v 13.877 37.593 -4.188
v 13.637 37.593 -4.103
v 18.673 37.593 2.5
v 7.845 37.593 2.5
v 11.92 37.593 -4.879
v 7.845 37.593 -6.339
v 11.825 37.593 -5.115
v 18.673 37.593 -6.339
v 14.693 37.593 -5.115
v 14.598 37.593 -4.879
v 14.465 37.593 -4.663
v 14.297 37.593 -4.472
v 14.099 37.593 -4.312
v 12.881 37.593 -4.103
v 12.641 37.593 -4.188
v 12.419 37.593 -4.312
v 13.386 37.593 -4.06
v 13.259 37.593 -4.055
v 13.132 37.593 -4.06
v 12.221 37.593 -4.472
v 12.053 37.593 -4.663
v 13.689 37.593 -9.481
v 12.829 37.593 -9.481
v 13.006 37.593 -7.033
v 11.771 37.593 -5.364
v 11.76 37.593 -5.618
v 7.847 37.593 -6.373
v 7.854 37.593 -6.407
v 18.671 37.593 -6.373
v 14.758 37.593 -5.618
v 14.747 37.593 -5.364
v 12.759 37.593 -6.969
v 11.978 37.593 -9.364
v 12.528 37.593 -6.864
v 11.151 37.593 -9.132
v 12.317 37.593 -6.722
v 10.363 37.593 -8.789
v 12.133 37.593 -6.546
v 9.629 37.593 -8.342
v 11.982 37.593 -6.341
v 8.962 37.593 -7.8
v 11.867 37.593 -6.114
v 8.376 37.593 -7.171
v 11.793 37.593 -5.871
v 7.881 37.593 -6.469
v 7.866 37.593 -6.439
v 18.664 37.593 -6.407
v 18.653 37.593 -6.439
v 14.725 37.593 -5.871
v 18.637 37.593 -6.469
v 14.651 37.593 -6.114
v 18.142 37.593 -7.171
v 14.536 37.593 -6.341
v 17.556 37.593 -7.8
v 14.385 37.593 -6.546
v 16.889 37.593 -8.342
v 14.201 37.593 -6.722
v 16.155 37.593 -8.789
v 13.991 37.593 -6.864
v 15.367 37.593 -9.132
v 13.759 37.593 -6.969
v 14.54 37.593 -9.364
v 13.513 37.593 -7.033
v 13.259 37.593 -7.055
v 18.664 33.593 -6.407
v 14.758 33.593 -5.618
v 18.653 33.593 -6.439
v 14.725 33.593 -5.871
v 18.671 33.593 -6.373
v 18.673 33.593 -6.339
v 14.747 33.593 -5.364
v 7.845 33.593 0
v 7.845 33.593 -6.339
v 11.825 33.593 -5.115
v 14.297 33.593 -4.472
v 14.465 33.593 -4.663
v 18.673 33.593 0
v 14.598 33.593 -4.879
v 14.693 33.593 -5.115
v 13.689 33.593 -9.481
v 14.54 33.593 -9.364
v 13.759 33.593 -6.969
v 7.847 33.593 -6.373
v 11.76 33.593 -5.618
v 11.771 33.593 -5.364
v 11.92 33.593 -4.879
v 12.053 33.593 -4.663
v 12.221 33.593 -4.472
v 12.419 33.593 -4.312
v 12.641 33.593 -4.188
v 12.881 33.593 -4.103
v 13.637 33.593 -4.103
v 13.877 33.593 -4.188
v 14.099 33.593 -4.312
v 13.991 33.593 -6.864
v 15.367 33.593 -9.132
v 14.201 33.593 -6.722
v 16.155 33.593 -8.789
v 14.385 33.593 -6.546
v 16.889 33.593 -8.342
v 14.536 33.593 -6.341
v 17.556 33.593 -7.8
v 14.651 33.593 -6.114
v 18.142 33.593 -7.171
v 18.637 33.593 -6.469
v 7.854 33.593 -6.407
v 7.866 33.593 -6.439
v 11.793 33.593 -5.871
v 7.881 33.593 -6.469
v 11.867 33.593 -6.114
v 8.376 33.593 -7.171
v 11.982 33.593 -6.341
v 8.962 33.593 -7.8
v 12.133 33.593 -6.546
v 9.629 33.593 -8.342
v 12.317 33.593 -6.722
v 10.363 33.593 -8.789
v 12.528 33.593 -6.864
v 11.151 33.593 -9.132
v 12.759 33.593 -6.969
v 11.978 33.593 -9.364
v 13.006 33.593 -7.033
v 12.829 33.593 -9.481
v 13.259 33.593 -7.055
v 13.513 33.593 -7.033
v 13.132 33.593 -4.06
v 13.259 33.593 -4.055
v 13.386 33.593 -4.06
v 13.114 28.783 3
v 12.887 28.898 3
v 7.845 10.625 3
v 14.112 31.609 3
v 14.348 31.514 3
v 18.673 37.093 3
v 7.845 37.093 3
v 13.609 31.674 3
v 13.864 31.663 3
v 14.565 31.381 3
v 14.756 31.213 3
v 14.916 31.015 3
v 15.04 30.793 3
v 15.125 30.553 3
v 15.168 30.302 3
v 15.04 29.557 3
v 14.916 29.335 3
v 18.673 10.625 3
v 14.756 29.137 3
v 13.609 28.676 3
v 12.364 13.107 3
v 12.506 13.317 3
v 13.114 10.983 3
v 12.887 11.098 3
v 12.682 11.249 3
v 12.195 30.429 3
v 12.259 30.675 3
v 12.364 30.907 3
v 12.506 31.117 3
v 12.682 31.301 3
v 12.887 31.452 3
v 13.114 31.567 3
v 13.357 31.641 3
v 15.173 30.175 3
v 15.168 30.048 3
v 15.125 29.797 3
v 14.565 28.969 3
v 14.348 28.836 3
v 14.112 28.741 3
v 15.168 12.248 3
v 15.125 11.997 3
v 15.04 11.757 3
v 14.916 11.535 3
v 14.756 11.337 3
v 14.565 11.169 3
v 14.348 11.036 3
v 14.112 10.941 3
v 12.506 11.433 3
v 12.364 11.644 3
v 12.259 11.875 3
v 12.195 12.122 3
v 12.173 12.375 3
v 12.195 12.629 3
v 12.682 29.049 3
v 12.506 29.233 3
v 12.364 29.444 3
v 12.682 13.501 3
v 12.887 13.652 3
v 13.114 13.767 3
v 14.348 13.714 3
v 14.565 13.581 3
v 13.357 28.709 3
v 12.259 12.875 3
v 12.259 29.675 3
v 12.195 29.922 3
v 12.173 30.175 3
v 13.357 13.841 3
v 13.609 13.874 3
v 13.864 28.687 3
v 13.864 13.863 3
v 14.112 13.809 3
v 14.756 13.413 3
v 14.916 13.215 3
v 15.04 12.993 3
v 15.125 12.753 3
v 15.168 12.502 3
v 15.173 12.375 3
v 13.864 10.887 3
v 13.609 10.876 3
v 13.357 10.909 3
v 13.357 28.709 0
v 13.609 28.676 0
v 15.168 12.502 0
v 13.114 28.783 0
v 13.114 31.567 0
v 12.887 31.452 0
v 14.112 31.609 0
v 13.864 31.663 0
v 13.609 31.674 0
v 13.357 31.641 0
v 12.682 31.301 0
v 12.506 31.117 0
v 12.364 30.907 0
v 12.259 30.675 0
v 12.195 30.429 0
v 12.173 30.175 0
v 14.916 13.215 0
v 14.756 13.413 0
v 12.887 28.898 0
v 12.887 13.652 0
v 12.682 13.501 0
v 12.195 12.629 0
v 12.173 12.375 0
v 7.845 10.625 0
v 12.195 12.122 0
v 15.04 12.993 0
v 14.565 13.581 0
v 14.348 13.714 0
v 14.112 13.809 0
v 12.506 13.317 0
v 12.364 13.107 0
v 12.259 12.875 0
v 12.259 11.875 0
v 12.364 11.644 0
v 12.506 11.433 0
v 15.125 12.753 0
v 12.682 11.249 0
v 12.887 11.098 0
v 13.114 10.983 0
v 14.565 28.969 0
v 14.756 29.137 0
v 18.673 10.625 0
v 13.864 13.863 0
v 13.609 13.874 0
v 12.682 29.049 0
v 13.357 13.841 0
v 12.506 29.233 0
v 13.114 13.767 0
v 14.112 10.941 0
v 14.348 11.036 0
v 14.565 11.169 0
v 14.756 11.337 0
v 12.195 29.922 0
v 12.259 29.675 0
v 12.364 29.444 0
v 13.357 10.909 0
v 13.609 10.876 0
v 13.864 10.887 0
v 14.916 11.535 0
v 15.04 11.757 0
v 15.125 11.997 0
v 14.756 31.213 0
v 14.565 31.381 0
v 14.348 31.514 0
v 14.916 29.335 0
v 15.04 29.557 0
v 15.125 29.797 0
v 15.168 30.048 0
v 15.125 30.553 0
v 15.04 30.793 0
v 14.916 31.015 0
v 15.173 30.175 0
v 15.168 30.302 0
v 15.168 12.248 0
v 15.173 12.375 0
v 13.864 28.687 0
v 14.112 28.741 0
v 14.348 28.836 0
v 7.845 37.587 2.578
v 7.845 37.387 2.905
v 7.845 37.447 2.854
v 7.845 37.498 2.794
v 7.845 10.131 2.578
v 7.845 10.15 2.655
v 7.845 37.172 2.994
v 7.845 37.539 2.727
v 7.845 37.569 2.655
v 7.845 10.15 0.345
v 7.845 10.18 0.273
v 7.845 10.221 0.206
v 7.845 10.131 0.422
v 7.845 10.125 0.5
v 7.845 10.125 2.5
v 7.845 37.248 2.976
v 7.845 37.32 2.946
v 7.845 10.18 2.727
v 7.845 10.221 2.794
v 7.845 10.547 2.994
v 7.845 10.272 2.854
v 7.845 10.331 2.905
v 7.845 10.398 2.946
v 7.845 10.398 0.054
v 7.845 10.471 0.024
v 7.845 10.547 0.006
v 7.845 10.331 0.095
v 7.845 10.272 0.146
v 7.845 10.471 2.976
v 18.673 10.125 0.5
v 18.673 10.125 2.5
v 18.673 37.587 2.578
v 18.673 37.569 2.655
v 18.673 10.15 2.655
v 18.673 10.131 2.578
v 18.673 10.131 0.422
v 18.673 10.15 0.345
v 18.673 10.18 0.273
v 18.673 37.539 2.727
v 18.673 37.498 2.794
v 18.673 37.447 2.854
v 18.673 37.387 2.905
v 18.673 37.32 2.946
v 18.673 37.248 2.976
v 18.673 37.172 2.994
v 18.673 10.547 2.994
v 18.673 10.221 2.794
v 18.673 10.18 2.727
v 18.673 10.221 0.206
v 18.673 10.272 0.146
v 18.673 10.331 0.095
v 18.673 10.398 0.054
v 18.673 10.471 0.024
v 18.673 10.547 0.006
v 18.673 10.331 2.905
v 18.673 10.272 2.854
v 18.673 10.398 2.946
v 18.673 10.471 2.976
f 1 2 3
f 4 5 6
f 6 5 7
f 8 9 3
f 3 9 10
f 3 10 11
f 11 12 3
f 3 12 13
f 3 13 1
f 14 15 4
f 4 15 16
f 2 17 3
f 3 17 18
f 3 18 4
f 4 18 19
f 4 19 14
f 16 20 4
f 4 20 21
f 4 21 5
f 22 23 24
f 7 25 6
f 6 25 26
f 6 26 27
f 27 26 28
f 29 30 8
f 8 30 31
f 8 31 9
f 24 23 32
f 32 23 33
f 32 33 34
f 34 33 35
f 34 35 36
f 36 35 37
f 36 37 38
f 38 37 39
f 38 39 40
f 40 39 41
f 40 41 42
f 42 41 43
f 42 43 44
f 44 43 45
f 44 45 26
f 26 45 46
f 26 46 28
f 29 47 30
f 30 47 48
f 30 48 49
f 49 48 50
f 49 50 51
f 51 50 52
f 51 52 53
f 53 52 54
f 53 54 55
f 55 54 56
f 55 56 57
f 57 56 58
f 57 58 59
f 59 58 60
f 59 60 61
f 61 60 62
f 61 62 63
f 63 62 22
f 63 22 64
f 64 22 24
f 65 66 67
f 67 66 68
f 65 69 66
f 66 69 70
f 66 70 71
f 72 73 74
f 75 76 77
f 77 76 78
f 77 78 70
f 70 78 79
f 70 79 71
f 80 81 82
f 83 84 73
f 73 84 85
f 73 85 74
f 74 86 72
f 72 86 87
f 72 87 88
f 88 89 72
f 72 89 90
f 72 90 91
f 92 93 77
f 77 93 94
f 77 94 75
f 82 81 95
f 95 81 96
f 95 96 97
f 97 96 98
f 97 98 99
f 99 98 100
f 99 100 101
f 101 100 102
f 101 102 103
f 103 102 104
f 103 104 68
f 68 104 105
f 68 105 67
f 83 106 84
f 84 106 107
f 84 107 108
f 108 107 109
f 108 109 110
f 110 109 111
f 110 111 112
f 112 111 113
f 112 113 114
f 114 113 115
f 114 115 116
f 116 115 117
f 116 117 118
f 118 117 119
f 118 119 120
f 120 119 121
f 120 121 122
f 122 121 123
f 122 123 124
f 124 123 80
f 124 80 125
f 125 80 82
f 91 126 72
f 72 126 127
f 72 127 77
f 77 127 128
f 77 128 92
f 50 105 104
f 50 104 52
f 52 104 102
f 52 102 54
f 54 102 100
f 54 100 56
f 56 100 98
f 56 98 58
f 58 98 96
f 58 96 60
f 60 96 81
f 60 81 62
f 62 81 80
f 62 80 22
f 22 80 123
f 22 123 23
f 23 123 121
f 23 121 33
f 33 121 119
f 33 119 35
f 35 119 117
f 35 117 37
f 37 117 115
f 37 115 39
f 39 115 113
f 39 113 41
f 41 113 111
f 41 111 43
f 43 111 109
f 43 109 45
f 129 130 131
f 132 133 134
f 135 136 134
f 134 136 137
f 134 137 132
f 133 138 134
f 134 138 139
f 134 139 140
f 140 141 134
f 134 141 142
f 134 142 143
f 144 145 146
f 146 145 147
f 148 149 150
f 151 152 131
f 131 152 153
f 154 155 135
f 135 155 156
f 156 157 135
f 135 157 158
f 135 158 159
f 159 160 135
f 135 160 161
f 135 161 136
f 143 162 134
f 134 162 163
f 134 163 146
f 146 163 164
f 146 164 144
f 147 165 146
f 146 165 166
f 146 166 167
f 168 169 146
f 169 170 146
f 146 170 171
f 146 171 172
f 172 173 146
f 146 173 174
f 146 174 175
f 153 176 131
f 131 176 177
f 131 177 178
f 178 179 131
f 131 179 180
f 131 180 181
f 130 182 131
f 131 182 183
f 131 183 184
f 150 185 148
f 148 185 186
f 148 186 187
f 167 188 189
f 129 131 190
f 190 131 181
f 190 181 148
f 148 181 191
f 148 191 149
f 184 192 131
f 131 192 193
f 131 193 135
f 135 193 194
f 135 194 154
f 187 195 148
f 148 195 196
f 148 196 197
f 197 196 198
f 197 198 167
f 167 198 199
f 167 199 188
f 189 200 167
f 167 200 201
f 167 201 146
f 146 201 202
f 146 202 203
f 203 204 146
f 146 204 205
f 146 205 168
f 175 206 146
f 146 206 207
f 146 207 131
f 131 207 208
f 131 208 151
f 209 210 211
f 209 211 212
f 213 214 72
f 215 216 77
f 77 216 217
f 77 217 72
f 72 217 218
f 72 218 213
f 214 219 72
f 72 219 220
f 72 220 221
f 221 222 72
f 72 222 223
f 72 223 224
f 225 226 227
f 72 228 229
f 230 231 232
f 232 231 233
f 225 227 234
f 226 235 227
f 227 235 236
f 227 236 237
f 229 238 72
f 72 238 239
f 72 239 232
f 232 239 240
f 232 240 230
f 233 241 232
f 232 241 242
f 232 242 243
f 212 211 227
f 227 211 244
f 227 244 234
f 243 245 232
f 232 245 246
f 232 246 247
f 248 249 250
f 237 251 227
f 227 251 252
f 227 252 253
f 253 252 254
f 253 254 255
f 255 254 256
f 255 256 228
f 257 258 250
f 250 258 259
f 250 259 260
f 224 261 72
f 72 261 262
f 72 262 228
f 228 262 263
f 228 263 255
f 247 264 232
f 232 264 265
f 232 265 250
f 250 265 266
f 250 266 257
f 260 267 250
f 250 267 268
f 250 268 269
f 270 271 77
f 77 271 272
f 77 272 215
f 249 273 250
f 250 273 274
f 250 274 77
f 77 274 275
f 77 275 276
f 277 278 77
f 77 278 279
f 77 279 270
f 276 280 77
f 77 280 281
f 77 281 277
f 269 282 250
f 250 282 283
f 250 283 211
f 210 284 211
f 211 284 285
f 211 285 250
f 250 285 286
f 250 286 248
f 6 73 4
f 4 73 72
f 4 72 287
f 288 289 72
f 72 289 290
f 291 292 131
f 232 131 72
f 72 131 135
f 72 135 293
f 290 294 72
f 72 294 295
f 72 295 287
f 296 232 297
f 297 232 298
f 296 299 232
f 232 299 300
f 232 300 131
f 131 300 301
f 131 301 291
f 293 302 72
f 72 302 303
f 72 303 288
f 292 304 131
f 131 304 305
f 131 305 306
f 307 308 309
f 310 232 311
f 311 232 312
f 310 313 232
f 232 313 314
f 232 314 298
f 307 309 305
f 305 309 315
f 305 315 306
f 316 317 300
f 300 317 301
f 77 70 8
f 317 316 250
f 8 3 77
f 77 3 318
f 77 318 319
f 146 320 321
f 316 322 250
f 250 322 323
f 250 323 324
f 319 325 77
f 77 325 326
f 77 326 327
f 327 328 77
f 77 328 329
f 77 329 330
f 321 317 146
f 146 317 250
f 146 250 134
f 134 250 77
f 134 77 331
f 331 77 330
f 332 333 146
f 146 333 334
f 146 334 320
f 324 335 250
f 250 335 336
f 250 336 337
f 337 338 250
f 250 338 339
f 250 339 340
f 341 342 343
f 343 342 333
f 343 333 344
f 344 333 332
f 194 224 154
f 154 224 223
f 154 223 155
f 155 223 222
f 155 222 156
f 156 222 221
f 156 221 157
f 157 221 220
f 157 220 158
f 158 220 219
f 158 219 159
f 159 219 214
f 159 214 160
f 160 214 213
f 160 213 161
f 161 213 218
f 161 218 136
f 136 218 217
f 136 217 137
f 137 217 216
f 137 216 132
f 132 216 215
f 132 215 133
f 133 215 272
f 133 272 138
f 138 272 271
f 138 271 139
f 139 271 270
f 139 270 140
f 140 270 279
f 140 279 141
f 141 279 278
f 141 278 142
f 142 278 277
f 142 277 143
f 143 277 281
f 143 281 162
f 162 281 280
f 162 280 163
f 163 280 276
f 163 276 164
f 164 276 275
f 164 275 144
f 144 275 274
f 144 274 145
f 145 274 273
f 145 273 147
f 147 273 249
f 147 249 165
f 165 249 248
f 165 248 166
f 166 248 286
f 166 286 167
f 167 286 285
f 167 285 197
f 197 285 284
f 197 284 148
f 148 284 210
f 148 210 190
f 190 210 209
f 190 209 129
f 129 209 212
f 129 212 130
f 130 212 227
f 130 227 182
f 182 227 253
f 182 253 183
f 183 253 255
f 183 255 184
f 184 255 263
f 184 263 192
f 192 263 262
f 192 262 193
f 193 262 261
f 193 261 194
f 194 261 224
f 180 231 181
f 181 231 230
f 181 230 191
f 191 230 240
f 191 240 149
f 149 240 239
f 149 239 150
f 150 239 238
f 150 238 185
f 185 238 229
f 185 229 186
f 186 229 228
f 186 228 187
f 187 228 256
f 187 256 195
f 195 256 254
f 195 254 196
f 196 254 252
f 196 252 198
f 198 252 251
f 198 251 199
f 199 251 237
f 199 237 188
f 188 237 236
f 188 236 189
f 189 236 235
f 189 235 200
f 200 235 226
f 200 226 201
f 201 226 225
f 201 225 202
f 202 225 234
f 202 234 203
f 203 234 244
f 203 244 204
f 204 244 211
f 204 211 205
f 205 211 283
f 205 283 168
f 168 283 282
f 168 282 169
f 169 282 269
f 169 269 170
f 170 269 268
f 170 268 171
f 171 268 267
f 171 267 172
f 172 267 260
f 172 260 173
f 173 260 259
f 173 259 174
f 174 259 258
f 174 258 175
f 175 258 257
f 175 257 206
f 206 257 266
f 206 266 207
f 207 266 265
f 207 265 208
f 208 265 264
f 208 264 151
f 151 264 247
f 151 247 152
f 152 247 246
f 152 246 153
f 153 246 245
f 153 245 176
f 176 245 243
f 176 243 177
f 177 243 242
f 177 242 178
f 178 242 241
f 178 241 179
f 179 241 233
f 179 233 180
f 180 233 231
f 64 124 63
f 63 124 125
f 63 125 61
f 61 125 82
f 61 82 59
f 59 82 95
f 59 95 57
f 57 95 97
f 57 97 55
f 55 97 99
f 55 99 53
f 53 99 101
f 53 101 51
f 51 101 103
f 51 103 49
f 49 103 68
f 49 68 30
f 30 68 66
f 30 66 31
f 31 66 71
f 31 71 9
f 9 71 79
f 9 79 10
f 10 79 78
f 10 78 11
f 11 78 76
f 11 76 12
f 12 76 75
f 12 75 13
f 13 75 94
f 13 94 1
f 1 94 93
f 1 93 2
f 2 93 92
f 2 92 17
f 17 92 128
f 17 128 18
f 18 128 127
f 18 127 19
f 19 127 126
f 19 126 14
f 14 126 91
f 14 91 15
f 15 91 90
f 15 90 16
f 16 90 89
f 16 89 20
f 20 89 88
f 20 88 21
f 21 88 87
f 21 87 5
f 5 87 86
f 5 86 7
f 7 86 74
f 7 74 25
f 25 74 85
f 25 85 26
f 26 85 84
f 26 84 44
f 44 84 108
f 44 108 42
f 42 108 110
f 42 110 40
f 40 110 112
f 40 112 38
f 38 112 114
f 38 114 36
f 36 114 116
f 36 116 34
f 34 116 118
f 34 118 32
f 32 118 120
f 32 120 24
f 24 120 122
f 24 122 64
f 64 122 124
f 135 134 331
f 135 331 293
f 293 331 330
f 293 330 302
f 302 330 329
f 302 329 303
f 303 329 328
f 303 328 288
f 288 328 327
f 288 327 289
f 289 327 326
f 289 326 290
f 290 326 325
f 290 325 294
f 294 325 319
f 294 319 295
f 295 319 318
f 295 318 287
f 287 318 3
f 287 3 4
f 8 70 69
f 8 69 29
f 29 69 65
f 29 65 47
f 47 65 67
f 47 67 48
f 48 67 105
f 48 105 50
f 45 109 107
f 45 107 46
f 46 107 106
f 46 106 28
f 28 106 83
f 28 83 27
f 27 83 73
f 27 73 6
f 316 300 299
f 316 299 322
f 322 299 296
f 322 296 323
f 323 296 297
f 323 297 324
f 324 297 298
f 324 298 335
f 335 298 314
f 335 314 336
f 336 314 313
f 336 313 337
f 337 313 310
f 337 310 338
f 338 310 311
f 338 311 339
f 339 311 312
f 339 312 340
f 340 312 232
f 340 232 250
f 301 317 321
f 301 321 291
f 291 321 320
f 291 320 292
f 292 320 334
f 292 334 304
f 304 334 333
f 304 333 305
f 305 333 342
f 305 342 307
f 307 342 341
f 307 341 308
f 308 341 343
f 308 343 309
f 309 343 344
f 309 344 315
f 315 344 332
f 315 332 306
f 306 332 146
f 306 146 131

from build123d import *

# Parameters (mm, degrees)
ESBO_O2_R                = 1.5
RESSALTO_EXTRUS_O1_DEPTH = 3
ESBO_O3_R                = 1.5
RESSALTO_EXTRUS_O2_DEPTH = 4
CORTE_EXTRUS_O1_DEPTH    = 800
FILETE3_R                = 0.5
FILETE4_R                = 0.25
FILETE5_R                = 0.25
FILETE6_R                = 0.5


with BuildPart() as part:
    # Esboço2 → Ressalto-extrusão1 (new body)
    with BuildSketch(Plane.XY):
        Polygon((18.673142098, 27.45587681), (18.673142098, 15.094242614), (18.673142098, 10.125059712), (7.844942761, 10.125059712), (7.844942761, 33.593343284), (18.673142098, 33.593343284), align=None)
        with Locations((13.673142098, 30.175059712)):
            Circle(ESBO_O2_R, mode=Mode.SUBTRACT)
        with Locations((13.673142098, 12.375059712)):
            Circle(ESBO_O2_R, mode=Mode.SUBTRACT)
    extrude(amount=RESSALTO_EXTRUS_O1_DEPTH)

    # Esboço3 → Ressalto-extrusão2 (add)
    with BuildSketch(Plane(origin=(0, 33.593343284, 0), x_dir=(1, 0, 0), z_dir=(0, 1, 0))):
        with BuildLine():
            Line((7.844942761, 0), (7.844942761, -3))
            Line((7.844942761, -3), (18.673142098, -3))
            Line((18.673142098, -3), (18.673142098, 0))
            ThreePointArc((18.673142098, 0), (13.25904243, 9.495487225), (7.844942761, 0))
        make_face()
        with Locations((13.25904243, 5.554613856)):
            Circle(ESBO_O3_R, mode=Mode.SUBTRACT)
    extrude(amount=RESSALTO_EXTRUS_O2_DEPTH)

    # Esboço4 → Corte-extrusão1 (cut)
    with BuildSketch(Plane(origin=(0, 0, 0), x_dir=(1, 0, 0), z_dir=(0, 1, 0))):
        with BuildLine():
            Line((7.844942761, 0), (7.844942761, 6.408497108))
            ThreePointArc((7.844942761, 6.408497108), (6.967803758, 3.204248554), (7.844942761, 0))
        make_face()
        with BuildLine():
            Line((18.673142098, 0), (18.673142098, 6.408497108))
            ThreePointArc((18.673142098, 6.408497108), (19.550281101, 3.204248554), (18.673142098, 0))
        make_face()
    extrude(amount=CORTE_EXTRUS_O1_DEPTH, mode=Mode.SUBTRACT)

    # Filete3
    filete3_edges = [part.edges().sort_by_distance(p)[0] for p in [
        (13.25904243, 37.593343284, 3),
    ]]
    fillet(filete3_edges, radius=FILETE3_R)

    # Filete4
    filete4_edges = [part.edges().sort_by_distance(p)[0] for p in [
        (18.673142098, 35.593343284, -6.408497108),
    ]]
    fillet(filete4_edges, radius=FILETE4_R)

    # Filete5
    filete5_edges = [part.edges().sort_by_distance(p)[0] for p in [
        (7.844942761, 35.593343284, -6.408497108),
    ]]
    fillet(filete5_edges, radius=FILETE5_R)

    # Filete6
    filete6_edges = [part.edges().sort_by_distance(p)[0] for p in [
        (13.25904243, 10.125059712, 3),
        (13.25904243, 10.125059712, 0),
    ]]
    fillet(filete6_edges, radius=FILETE6_R)


solid = part.part
